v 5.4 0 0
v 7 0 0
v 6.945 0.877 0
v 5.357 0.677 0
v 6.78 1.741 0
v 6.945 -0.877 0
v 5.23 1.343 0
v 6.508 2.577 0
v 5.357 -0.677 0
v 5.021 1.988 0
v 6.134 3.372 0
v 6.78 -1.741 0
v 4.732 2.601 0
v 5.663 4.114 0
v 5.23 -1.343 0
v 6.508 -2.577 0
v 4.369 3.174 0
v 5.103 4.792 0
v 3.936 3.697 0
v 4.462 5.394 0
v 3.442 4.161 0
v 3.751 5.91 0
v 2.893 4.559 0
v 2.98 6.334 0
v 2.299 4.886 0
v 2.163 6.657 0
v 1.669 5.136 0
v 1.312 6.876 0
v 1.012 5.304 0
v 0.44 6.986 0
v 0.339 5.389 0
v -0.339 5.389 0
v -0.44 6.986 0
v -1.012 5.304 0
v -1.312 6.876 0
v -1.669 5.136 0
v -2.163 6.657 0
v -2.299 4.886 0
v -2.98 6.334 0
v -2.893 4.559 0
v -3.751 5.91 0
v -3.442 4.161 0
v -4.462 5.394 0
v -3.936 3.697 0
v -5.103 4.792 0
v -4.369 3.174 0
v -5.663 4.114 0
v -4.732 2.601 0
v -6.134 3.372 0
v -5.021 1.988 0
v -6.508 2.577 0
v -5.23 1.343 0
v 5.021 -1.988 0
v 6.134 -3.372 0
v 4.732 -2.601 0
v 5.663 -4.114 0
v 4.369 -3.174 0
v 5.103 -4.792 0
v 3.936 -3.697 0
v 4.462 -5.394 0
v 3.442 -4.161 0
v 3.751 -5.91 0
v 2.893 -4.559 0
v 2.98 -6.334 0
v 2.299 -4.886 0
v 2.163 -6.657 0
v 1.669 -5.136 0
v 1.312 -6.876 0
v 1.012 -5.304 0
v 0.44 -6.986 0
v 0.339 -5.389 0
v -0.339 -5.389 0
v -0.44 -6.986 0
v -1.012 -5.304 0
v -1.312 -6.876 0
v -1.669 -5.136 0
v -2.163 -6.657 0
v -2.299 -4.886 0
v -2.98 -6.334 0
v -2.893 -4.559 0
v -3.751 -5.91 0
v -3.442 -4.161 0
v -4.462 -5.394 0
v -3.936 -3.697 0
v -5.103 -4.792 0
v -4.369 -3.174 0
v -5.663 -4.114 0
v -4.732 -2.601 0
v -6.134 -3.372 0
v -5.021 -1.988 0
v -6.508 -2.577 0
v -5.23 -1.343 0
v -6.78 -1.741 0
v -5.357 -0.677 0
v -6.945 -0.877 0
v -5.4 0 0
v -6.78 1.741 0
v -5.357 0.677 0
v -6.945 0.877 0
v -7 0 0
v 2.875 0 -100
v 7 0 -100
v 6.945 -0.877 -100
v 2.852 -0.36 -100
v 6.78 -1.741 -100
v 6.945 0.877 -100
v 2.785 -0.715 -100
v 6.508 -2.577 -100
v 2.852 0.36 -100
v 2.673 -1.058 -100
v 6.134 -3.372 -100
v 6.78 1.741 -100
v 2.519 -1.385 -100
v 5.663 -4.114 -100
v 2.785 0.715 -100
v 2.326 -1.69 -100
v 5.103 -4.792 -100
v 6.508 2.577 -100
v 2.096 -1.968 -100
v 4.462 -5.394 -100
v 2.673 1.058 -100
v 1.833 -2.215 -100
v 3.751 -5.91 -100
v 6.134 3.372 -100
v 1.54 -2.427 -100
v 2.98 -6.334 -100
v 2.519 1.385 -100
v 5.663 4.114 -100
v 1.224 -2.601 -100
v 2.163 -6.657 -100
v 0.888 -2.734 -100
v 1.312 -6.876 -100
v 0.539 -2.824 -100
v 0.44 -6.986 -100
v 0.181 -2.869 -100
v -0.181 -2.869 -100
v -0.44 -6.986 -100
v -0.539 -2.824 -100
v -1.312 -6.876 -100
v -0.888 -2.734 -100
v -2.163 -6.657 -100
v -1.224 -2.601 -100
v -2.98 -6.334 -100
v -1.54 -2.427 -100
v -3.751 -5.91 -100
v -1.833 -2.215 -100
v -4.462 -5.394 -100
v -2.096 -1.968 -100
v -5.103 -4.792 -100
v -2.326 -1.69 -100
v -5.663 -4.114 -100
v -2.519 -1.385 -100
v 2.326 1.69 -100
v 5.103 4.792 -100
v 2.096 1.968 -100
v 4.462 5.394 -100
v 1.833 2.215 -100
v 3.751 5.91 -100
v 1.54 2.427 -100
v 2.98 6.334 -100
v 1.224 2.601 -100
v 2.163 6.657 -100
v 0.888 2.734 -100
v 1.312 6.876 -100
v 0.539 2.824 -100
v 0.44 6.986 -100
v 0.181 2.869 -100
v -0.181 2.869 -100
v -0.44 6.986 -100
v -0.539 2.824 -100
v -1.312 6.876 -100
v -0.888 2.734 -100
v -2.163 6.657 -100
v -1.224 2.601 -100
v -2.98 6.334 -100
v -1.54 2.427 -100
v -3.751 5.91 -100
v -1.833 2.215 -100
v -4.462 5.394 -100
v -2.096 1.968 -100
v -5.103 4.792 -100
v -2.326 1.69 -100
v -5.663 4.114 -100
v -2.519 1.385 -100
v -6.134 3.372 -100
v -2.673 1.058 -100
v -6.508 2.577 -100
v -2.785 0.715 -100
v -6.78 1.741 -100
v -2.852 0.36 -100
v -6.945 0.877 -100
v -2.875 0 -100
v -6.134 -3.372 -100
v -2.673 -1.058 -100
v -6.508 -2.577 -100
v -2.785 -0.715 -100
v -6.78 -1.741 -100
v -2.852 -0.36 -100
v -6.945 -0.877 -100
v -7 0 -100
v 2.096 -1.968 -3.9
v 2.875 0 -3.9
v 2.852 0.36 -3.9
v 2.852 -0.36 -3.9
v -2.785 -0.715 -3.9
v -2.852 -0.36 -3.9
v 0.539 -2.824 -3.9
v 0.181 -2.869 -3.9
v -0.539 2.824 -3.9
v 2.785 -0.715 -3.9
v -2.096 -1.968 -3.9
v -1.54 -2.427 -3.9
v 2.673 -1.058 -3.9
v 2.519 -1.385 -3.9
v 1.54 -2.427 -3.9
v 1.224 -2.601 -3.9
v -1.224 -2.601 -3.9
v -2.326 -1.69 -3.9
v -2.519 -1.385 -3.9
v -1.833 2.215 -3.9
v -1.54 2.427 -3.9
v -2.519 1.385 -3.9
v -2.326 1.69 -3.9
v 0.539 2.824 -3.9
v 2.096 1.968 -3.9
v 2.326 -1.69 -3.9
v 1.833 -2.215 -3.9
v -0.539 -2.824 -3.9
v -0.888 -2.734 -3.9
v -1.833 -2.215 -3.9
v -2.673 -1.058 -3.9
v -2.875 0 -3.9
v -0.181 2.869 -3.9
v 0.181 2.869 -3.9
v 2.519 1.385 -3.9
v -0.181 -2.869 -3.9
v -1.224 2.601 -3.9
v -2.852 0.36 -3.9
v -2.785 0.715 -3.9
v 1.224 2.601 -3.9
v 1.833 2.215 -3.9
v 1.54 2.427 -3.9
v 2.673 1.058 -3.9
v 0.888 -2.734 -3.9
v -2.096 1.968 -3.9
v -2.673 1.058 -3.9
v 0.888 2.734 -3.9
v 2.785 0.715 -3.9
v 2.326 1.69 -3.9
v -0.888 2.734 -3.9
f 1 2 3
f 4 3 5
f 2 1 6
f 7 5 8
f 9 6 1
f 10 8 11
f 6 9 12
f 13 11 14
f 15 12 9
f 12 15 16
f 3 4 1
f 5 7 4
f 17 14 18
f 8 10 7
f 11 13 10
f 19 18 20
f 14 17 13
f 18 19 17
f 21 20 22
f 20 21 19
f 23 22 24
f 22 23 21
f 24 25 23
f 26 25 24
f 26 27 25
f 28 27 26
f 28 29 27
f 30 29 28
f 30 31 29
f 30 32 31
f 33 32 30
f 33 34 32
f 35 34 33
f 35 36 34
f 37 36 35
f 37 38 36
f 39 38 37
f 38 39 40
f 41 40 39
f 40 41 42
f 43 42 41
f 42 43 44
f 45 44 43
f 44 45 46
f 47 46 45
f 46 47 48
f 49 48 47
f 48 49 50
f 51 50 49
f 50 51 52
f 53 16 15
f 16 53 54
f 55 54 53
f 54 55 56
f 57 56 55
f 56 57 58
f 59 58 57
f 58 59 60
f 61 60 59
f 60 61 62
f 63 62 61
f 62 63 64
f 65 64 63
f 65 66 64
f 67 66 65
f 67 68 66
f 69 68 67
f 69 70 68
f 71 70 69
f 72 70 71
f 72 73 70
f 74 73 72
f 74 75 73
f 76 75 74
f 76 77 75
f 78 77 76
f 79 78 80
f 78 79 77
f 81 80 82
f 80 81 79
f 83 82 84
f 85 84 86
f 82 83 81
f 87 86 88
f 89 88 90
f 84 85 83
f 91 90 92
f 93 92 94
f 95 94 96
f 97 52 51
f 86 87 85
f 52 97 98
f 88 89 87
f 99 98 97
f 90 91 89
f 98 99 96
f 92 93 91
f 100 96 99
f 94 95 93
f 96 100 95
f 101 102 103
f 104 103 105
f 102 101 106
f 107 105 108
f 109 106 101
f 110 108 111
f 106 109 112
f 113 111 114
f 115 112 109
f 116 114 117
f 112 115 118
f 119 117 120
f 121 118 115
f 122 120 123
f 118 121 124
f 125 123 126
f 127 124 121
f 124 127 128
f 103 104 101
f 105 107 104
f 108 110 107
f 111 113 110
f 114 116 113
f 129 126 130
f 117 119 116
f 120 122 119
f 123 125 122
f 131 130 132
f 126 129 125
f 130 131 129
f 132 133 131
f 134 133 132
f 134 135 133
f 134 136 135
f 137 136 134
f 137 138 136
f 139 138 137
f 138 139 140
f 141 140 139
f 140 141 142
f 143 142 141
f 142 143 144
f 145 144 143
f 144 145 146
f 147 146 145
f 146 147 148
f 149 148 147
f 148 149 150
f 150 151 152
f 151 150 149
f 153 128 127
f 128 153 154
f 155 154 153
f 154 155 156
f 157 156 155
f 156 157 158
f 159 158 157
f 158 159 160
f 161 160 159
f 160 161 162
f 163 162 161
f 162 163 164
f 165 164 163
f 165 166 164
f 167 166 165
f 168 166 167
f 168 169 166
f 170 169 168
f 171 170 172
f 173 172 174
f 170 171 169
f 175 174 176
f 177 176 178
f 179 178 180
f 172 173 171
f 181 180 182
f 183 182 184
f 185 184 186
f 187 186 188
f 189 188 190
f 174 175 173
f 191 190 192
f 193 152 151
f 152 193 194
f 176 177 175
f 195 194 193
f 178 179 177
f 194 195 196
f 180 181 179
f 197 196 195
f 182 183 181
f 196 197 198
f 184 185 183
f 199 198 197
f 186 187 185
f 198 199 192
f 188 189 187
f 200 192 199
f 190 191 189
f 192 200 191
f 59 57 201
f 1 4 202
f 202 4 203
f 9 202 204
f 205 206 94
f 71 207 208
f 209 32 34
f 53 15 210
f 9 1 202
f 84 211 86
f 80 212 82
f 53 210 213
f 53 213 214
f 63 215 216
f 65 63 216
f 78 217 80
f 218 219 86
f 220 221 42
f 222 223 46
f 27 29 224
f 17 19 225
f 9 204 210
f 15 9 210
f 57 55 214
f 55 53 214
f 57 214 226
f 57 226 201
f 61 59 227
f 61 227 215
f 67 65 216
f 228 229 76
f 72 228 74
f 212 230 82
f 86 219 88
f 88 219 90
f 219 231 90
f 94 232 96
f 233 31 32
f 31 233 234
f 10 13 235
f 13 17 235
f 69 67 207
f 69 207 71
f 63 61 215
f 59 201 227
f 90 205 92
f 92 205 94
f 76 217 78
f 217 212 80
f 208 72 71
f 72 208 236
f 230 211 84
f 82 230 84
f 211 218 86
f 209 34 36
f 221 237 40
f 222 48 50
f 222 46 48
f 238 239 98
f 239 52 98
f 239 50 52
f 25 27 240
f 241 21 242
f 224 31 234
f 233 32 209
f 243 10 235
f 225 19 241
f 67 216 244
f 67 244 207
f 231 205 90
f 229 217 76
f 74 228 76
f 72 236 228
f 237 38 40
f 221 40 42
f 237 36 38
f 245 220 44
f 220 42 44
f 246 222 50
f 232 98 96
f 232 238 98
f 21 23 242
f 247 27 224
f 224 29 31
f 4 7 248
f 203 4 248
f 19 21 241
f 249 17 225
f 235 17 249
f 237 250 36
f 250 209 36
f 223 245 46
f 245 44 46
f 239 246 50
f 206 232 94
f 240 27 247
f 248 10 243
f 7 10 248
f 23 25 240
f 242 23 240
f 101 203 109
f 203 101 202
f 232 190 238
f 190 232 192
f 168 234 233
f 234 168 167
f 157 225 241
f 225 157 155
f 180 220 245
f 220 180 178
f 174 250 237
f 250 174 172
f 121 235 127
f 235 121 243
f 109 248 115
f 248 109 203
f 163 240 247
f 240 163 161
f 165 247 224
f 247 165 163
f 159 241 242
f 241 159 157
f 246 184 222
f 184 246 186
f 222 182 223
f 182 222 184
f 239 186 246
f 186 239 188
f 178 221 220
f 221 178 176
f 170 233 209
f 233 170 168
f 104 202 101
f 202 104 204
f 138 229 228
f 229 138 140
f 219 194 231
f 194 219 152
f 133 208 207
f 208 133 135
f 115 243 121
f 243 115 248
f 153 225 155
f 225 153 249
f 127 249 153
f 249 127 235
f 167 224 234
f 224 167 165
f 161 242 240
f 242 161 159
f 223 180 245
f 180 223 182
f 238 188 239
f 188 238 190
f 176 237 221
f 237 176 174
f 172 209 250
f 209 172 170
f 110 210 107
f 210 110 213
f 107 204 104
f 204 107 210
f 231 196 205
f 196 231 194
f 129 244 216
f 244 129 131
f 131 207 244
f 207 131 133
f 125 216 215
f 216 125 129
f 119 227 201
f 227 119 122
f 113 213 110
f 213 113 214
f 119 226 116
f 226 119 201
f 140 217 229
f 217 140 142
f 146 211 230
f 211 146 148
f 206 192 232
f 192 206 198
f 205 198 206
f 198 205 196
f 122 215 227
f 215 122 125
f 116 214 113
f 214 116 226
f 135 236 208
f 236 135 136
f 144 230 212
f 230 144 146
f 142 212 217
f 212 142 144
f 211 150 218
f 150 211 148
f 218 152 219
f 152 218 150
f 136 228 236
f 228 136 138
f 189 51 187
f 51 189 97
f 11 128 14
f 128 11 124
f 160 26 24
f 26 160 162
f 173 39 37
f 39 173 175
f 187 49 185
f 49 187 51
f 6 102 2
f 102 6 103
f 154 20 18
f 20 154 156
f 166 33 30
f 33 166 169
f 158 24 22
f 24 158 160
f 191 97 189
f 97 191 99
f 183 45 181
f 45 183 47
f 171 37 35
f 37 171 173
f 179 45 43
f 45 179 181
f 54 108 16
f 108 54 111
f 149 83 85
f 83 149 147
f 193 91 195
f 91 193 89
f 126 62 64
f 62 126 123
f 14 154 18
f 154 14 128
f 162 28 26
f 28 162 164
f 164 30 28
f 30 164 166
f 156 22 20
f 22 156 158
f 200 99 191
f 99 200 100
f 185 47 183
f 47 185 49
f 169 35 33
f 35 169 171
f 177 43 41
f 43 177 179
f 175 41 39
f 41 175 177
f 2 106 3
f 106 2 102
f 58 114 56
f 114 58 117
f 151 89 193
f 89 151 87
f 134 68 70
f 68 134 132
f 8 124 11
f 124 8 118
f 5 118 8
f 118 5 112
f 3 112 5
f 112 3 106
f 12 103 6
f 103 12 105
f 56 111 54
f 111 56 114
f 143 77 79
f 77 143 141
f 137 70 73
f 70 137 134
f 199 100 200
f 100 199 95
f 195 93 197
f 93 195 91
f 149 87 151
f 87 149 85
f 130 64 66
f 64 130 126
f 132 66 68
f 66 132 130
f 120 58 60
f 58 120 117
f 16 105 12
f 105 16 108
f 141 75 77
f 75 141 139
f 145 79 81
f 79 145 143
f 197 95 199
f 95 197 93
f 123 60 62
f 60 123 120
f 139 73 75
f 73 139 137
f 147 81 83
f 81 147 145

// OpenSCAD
$fn = 50;


difference() {
	union() {
		translate(v = [0, 0, -100.0000000000]) {
			cylinder(h = 100, r = 7.0000000000);
		}
		cylinder(h = 0, r = 16.0000000000);
	}
	union() {
		translate(v = [0, 0, 0]) {
			rotate(a = [0, 0, 0]) {
				difference() {
					union() {
						#translate(v = [0, 0, -100.0000000000]) {
							cylinder(h = 100, r = 2.6000000000);
						}
						#translate(v = [0, 0, -3.9000000000]) {
							cylinder(h = 3.9000000000, r1 = 2.8750000000, r2 = 5.4000000000);
						}
						#translate(v = [0, 0, -100.0000000000]) {
							cylinder(h = 100, r = 2.8750000000);
						}
						#translate(v = [0, 0, -100.0000000000]) {
							cylinder(h = 100, r = 2.6000000000);
						}
					}
					union();
				}
			}
		}
	}
}
